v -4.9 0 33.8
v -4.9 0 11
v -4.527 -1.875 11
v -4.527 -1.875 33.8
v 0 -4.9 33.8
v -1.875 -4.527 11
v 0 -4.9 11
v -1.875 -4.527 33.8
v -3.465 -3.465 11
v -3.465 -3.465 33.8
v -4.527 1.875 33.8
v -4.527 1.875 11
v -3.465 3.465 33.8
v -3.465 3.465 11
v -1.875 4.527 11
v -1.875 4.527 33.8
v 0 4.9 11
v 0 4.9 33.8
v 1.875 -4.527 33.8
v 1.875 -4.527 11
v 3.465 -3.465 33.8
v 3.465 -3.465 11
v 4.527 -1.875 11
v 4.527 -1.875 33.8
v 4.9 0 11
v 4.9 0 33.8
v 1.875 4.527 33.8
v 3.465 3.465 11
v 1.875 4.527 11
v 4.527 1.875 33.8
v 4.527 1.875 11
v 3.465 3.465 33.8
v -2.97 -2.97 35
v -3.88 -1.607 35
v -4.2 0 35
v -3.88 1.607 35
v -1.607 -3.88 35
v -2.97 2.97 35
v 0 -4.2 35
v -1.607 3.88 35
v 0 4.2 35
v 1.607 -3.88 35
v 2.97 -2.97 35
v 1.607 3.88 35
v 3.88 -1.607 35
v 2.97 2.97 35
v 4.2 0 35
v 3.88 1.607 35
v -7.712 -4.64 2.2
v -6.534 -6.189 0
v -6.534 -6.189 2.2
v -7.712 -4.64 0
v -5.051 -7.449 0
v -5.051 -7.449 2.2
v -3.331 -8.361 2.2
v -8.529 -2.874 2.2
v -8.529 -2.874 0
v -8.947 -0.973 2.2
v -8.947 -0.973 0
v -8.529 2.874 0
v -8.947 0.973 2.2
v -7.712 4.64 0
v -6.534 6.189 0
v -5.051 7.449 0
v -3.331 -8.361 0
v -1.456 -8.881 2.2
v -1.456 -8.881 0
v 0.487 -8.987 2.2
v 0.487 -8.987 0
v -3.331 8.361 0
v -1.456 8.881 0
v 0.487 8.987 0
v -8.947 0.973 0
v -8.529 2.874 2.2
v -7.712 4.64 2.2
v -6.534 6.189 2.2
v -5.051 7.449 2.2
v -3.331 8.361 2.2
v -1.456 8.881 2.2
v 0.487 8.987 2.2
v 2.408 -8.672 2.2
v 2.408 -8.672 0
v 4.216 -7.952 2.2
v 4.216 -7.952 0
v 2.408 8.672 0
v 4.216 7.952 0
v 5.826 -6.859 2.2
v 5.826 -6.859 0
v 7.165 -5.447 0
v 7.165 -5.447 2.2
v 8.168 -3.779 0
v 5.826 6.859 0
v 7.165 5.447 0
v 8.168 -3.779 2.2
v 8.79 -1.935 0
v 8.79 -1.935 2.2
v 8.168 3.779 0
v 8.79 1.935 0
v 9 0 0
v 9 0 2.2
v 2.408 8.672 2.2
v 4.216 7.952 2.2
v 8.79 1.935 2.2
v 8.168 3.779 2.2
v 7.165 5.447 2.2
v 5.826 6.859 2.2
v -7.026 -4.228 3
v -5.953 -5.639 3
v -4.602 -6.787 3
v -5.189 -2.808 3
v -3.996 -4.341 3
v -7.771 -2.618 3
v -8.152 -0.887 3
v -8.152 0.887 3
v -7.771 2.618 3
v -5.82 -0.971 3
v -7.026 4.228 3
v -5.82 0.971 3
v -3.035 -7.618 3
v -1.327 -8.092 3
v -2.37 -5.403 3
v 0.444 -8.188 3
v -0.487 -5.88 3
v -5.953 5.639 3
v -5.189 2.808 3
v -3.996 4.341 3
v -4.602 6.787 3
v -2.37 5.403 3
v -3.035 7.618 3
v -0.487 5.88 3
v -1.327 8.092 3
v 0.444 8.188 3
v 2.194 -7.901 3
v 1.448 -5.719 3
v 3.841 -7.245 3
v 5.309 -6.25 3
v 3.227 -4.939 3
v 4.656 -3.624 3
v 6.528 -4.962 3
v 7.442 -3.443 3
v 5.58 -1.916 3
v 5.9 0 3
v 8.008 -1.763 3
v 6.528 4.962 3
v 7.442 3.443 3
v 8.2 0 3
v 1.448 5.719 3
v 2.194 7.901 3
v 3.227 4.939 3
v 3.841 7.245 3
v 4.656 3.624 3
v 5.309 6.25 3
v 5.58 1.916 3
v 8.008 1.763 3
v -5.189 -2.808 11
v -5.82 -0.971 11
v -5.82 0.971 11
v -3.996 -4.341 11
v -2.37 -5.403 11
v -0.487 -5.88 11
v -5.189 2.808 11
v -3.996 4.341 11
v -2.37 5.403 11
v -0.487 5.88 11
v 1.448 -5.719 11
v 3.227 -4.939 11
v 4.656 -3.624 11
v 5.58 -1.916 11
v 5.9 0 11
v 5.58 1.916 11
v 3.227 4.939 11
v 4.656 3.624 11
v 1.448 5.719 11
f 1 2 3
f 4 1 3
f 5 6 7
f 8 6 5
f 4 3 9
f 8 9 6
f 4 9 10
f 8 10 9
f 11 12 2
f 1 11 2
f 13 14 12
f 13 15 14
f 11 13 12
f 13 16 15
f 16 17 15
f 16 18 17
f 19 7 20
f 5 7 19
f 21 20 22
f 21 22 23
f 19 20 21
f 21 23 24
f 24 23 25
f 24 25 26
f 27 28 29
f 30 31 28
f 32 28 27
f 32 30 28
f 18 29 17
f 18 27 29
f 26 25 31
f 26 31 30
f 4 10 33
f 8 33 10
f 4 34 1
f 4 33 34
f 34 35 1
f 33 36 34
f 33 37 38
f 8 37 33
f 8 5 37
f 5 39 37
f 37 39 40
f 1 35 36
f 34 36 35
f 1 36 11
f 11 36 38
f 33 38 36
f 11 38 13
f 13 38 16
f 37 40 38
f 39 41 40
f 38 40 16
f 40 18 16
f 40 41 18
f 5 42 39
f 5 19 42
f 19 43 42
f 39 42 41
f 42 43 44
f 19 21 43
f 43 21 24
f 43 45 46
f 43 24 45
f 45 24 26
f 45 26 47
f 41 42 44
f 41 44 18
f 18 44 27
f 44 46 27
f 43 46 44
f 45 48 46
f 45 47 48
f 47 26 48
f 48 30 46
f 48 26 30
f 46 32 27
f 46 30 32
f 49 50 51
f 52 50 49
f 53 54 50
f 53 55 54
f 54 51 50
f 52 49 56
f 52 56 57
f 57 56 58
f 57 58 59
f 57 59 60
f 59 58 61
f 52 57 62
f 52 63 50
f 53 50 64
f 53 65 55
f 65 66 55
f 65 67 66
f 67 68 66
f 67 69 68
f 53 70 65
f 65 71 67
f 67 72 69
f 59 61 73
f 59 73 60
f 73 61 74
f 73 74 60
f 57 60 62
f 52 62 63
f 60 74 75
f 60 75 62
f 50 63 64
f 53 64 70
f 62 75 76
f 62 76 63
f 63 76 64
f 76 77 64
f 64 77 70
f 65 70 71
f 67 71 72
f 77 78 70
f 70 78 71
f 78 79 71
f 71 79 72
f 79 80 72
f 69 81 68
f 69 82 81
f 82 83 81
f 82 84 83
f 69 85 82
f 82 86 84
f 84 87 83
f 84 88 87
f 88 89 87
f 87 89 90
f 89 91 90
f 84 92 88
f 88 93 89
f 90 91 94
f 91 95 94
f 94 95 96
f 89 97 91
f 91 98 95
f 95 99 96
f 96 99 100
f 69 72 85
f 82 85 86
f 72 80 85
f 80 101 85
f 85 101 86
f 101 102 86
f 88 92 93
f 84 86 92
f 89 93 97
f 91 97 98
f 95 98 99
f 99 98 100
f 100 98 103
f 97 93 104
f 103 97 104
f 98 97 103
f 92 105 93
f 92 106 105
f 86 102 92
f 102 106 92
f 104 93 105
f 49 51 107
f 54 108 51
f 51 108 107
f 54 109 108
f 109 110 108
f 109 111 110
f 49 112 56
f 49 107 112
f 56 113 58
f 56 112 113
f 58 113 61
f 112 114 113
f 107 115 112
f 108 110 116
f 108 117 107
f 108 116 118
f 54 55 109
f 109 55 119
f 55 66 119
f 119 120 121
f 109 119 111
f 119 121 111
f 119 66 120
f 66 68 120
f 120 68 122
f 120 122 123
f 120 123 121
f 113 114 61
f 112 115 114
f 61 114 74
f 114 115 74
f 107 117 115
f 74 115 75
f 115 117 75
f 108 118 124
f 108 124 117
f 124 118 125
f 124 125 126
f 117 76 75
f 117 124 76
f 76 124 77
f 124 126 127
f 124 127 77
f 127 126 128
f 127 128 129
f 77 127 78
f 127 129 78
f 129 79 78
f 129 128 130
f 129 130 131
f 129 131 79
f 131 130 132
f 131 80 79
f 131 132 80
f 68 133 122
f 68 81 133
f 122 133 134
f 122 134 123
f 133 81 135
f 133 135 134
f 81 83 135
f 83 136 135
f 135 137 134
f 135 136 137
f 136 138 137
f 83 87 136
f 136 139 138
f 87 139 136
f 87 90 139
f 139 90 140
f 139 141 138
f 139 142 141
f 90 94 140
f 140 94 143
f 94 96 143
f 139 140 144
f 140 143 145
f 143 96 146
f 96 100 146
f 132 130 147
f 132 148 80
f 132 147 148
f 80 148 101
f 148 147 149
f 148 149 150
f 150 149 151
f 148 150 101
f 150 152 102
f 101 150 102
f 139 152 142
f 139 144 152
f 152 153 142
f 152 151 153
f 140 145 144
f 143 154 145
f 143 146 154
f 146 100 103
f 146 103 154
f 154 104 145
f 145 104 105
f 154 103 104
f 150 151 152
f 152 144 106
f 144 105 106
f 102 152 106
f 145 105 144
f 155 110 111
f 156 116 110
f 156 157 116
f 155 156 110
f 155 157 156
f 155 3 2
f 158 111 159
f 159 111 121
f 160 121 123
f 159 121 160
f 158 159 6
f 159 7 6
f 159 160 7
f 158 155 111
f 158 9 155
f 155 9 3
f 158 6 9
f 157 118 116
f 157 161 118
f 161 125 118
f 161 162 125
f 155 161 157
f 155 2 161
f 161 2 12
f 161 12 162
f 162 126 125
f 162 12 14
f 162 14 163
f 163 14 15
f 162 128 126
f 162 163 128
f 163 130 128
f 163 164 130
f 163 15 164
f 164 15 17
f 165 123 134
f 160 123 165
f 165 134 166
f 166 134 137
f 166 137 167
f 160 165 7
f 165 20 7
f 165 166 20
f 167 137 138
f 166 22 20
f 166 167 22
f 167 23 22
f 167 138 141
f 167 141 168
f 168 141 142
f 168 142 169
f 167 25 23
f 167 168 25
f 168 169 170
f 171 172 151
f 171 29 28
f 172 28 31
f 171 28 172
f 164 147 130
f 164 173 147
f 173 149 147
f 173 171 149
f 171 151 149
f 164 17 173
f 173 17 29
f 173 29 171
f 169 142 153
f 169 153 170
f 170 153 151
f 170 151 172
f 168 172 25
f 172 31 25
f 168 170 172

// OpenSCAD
// file: params.scad
// ============================================================================
//  SHARED PARAMETERS — pegboard jig print set
//  10mm holes on a 50mm grid, 18mm plywood, first hole 25mm from each edge.
//  Include this file in every part so dimensions stay in sync.
// ============================================================================

pitch        = 50;    // [mm] grid spacing
hole_d       = 10;    // [mm] drilled hole / bit size (reference)
edge_offset  = 25;    // [mm] first hole centre from each edge
panel_t      = 18;    // [mm] plywood thickness (fence reach below z=0)

// Locating pins — drop into drilled holes. All pin parts print PINS-UP.
pin_d      = 9.8;     // snug in a 10mm hole (9.9 tighter, 9.5 looser)
pin_len    = 10;      // engagement depth
pin_embed  = 3;       // root embedded in the base
chamfer_h  = 1.2;
chamfer_d  = 0.7;

// Drill guides — 12mm OD / 10mm ID metal bush press fit
bush_hole_d  = 11.9;  // press-fit seat (11.7 tighter, 12.1 slip+glue)
bit_clear_d  = 10.4;  // 0.2mm/side clearance
bush_seat_h  = 8;
boss_od      = 24;
boss_h       = 8;

// Base plates
base_t       = 6;
margin       = boss_od / 2 + 6;   // plate margin around stations

// Fence joint — must match between plate notches and fence tabs
notch_d      = 8.4;
notch_w      = 12;
tab_w        = 10;
tab_t        = 4.4;
tab_z0       = 0.3;
tab_in       = 8;
tab_frac     = [0.18, 0.5, 0.82];
fence_t      = 4;
fence_top    = 14;
clamp_gap    = 25;
edge_margin  = 15;
clamp_hole_d = 6;

// Edge rounding — plan-view corner radius, helps high-speed printing
corner_r     = 6;      // [mm] on plates / rib frames
corner_r_s   = 3;      // [mm] on small parts (carriage, inserts)
edge_break   = 0.8;    // [mm] small chamfer on exposed vertical-part edges

// Fence→plate screws — horizontal M3 self-tappers through the fence
// wall into the plate edge band, in the solid gaps between notches.
// Shared by plate (pilot) and fence (through) so positions always match.
screw_d       = 3;      // [mm] M3
screw_clear   = 3.4;    // through-hole Ø in the fence wall
screw_pilot   = 2.4;    // pilot hole Ø into the plate edge
screw_depth   = 9.5;    // pilot depth — stays inside the 10mm border band
screw_z       = 3;      // hole centre height (mid plate thickness)
screw_min_gap = 10;     // smallest solid edge interval that takes a screw

// Solid intervals along a fence edge = reach minus the notch pockets.
// Returns centre positions for the screw holes (same on both parts).
function screw_stations(reach, tab_pos) =
    let(
        flat   = [for (c = tab_pos, e = [-notch_w / 2, notch_w / 2]) c + e],
        bounds = concat([0], flat, [reach]),
        pairs  = [for (i = [0 : 2 : len(bounds) - 2])
                      [bounds[i], bounds[i + 1]]]
    )
    [for (p = pairs) if (p[1] - p[0] >= screw_min_gap)
        (p[0] + p[1]) / 2];
// main file
// ============================================================================
//  PIN INSERT — Proposal 5 (convertible jig), print 2
//  Drops into any guide socket: Ø11.8 plug seats in the Ø11.9 bush seat,
//  Ø9.8 pin hangs below into the drilled hole. Flange stays on top.
//  Bore stack it passes through: base_t 6 + boss_h 8 = 14mm, then
//  pin_len 10 below the plate face.
//  PRINT: as modelled — flange on the bed, pin as a tower. No supports.
// ============================================================================
include <params.scad>

flange_d = 18;
flange_t = 3;
plug_d   = 11.8;
plug_h   = bush_seat_h;              // 8 — fills the bush seat
stack    = base_t + boss_h;          // 14 — bore depth the pin traverses

module pin_insert() {
    cylinder(d = flange_d, h = flange_t - 0.8);                 // flange (on bed)
    translate([0, 0, flange_t - 0.8])
        cylinder(d1 = flange_d, d2 = flange_d - 1.6, h = 0.8);  // edge break
    translate([0, 0, flange_t])
        cylinder(d = plug_d, h = plug_h);                       // plug
    translate([0, 0, flange_t + plug_h]) {
        cylinder(d = pin_d, h = stack + pin_len - chamfer_h);   // pin shaft
        translate([0, 0, stack + pin_len - chamfer_h])
            cylinder(d1 = pin_d, d2 = pin_d - 2 * chamfer_d,
                     h = chamfer_h);                            // lead-in
    }
}

pin_insert();
